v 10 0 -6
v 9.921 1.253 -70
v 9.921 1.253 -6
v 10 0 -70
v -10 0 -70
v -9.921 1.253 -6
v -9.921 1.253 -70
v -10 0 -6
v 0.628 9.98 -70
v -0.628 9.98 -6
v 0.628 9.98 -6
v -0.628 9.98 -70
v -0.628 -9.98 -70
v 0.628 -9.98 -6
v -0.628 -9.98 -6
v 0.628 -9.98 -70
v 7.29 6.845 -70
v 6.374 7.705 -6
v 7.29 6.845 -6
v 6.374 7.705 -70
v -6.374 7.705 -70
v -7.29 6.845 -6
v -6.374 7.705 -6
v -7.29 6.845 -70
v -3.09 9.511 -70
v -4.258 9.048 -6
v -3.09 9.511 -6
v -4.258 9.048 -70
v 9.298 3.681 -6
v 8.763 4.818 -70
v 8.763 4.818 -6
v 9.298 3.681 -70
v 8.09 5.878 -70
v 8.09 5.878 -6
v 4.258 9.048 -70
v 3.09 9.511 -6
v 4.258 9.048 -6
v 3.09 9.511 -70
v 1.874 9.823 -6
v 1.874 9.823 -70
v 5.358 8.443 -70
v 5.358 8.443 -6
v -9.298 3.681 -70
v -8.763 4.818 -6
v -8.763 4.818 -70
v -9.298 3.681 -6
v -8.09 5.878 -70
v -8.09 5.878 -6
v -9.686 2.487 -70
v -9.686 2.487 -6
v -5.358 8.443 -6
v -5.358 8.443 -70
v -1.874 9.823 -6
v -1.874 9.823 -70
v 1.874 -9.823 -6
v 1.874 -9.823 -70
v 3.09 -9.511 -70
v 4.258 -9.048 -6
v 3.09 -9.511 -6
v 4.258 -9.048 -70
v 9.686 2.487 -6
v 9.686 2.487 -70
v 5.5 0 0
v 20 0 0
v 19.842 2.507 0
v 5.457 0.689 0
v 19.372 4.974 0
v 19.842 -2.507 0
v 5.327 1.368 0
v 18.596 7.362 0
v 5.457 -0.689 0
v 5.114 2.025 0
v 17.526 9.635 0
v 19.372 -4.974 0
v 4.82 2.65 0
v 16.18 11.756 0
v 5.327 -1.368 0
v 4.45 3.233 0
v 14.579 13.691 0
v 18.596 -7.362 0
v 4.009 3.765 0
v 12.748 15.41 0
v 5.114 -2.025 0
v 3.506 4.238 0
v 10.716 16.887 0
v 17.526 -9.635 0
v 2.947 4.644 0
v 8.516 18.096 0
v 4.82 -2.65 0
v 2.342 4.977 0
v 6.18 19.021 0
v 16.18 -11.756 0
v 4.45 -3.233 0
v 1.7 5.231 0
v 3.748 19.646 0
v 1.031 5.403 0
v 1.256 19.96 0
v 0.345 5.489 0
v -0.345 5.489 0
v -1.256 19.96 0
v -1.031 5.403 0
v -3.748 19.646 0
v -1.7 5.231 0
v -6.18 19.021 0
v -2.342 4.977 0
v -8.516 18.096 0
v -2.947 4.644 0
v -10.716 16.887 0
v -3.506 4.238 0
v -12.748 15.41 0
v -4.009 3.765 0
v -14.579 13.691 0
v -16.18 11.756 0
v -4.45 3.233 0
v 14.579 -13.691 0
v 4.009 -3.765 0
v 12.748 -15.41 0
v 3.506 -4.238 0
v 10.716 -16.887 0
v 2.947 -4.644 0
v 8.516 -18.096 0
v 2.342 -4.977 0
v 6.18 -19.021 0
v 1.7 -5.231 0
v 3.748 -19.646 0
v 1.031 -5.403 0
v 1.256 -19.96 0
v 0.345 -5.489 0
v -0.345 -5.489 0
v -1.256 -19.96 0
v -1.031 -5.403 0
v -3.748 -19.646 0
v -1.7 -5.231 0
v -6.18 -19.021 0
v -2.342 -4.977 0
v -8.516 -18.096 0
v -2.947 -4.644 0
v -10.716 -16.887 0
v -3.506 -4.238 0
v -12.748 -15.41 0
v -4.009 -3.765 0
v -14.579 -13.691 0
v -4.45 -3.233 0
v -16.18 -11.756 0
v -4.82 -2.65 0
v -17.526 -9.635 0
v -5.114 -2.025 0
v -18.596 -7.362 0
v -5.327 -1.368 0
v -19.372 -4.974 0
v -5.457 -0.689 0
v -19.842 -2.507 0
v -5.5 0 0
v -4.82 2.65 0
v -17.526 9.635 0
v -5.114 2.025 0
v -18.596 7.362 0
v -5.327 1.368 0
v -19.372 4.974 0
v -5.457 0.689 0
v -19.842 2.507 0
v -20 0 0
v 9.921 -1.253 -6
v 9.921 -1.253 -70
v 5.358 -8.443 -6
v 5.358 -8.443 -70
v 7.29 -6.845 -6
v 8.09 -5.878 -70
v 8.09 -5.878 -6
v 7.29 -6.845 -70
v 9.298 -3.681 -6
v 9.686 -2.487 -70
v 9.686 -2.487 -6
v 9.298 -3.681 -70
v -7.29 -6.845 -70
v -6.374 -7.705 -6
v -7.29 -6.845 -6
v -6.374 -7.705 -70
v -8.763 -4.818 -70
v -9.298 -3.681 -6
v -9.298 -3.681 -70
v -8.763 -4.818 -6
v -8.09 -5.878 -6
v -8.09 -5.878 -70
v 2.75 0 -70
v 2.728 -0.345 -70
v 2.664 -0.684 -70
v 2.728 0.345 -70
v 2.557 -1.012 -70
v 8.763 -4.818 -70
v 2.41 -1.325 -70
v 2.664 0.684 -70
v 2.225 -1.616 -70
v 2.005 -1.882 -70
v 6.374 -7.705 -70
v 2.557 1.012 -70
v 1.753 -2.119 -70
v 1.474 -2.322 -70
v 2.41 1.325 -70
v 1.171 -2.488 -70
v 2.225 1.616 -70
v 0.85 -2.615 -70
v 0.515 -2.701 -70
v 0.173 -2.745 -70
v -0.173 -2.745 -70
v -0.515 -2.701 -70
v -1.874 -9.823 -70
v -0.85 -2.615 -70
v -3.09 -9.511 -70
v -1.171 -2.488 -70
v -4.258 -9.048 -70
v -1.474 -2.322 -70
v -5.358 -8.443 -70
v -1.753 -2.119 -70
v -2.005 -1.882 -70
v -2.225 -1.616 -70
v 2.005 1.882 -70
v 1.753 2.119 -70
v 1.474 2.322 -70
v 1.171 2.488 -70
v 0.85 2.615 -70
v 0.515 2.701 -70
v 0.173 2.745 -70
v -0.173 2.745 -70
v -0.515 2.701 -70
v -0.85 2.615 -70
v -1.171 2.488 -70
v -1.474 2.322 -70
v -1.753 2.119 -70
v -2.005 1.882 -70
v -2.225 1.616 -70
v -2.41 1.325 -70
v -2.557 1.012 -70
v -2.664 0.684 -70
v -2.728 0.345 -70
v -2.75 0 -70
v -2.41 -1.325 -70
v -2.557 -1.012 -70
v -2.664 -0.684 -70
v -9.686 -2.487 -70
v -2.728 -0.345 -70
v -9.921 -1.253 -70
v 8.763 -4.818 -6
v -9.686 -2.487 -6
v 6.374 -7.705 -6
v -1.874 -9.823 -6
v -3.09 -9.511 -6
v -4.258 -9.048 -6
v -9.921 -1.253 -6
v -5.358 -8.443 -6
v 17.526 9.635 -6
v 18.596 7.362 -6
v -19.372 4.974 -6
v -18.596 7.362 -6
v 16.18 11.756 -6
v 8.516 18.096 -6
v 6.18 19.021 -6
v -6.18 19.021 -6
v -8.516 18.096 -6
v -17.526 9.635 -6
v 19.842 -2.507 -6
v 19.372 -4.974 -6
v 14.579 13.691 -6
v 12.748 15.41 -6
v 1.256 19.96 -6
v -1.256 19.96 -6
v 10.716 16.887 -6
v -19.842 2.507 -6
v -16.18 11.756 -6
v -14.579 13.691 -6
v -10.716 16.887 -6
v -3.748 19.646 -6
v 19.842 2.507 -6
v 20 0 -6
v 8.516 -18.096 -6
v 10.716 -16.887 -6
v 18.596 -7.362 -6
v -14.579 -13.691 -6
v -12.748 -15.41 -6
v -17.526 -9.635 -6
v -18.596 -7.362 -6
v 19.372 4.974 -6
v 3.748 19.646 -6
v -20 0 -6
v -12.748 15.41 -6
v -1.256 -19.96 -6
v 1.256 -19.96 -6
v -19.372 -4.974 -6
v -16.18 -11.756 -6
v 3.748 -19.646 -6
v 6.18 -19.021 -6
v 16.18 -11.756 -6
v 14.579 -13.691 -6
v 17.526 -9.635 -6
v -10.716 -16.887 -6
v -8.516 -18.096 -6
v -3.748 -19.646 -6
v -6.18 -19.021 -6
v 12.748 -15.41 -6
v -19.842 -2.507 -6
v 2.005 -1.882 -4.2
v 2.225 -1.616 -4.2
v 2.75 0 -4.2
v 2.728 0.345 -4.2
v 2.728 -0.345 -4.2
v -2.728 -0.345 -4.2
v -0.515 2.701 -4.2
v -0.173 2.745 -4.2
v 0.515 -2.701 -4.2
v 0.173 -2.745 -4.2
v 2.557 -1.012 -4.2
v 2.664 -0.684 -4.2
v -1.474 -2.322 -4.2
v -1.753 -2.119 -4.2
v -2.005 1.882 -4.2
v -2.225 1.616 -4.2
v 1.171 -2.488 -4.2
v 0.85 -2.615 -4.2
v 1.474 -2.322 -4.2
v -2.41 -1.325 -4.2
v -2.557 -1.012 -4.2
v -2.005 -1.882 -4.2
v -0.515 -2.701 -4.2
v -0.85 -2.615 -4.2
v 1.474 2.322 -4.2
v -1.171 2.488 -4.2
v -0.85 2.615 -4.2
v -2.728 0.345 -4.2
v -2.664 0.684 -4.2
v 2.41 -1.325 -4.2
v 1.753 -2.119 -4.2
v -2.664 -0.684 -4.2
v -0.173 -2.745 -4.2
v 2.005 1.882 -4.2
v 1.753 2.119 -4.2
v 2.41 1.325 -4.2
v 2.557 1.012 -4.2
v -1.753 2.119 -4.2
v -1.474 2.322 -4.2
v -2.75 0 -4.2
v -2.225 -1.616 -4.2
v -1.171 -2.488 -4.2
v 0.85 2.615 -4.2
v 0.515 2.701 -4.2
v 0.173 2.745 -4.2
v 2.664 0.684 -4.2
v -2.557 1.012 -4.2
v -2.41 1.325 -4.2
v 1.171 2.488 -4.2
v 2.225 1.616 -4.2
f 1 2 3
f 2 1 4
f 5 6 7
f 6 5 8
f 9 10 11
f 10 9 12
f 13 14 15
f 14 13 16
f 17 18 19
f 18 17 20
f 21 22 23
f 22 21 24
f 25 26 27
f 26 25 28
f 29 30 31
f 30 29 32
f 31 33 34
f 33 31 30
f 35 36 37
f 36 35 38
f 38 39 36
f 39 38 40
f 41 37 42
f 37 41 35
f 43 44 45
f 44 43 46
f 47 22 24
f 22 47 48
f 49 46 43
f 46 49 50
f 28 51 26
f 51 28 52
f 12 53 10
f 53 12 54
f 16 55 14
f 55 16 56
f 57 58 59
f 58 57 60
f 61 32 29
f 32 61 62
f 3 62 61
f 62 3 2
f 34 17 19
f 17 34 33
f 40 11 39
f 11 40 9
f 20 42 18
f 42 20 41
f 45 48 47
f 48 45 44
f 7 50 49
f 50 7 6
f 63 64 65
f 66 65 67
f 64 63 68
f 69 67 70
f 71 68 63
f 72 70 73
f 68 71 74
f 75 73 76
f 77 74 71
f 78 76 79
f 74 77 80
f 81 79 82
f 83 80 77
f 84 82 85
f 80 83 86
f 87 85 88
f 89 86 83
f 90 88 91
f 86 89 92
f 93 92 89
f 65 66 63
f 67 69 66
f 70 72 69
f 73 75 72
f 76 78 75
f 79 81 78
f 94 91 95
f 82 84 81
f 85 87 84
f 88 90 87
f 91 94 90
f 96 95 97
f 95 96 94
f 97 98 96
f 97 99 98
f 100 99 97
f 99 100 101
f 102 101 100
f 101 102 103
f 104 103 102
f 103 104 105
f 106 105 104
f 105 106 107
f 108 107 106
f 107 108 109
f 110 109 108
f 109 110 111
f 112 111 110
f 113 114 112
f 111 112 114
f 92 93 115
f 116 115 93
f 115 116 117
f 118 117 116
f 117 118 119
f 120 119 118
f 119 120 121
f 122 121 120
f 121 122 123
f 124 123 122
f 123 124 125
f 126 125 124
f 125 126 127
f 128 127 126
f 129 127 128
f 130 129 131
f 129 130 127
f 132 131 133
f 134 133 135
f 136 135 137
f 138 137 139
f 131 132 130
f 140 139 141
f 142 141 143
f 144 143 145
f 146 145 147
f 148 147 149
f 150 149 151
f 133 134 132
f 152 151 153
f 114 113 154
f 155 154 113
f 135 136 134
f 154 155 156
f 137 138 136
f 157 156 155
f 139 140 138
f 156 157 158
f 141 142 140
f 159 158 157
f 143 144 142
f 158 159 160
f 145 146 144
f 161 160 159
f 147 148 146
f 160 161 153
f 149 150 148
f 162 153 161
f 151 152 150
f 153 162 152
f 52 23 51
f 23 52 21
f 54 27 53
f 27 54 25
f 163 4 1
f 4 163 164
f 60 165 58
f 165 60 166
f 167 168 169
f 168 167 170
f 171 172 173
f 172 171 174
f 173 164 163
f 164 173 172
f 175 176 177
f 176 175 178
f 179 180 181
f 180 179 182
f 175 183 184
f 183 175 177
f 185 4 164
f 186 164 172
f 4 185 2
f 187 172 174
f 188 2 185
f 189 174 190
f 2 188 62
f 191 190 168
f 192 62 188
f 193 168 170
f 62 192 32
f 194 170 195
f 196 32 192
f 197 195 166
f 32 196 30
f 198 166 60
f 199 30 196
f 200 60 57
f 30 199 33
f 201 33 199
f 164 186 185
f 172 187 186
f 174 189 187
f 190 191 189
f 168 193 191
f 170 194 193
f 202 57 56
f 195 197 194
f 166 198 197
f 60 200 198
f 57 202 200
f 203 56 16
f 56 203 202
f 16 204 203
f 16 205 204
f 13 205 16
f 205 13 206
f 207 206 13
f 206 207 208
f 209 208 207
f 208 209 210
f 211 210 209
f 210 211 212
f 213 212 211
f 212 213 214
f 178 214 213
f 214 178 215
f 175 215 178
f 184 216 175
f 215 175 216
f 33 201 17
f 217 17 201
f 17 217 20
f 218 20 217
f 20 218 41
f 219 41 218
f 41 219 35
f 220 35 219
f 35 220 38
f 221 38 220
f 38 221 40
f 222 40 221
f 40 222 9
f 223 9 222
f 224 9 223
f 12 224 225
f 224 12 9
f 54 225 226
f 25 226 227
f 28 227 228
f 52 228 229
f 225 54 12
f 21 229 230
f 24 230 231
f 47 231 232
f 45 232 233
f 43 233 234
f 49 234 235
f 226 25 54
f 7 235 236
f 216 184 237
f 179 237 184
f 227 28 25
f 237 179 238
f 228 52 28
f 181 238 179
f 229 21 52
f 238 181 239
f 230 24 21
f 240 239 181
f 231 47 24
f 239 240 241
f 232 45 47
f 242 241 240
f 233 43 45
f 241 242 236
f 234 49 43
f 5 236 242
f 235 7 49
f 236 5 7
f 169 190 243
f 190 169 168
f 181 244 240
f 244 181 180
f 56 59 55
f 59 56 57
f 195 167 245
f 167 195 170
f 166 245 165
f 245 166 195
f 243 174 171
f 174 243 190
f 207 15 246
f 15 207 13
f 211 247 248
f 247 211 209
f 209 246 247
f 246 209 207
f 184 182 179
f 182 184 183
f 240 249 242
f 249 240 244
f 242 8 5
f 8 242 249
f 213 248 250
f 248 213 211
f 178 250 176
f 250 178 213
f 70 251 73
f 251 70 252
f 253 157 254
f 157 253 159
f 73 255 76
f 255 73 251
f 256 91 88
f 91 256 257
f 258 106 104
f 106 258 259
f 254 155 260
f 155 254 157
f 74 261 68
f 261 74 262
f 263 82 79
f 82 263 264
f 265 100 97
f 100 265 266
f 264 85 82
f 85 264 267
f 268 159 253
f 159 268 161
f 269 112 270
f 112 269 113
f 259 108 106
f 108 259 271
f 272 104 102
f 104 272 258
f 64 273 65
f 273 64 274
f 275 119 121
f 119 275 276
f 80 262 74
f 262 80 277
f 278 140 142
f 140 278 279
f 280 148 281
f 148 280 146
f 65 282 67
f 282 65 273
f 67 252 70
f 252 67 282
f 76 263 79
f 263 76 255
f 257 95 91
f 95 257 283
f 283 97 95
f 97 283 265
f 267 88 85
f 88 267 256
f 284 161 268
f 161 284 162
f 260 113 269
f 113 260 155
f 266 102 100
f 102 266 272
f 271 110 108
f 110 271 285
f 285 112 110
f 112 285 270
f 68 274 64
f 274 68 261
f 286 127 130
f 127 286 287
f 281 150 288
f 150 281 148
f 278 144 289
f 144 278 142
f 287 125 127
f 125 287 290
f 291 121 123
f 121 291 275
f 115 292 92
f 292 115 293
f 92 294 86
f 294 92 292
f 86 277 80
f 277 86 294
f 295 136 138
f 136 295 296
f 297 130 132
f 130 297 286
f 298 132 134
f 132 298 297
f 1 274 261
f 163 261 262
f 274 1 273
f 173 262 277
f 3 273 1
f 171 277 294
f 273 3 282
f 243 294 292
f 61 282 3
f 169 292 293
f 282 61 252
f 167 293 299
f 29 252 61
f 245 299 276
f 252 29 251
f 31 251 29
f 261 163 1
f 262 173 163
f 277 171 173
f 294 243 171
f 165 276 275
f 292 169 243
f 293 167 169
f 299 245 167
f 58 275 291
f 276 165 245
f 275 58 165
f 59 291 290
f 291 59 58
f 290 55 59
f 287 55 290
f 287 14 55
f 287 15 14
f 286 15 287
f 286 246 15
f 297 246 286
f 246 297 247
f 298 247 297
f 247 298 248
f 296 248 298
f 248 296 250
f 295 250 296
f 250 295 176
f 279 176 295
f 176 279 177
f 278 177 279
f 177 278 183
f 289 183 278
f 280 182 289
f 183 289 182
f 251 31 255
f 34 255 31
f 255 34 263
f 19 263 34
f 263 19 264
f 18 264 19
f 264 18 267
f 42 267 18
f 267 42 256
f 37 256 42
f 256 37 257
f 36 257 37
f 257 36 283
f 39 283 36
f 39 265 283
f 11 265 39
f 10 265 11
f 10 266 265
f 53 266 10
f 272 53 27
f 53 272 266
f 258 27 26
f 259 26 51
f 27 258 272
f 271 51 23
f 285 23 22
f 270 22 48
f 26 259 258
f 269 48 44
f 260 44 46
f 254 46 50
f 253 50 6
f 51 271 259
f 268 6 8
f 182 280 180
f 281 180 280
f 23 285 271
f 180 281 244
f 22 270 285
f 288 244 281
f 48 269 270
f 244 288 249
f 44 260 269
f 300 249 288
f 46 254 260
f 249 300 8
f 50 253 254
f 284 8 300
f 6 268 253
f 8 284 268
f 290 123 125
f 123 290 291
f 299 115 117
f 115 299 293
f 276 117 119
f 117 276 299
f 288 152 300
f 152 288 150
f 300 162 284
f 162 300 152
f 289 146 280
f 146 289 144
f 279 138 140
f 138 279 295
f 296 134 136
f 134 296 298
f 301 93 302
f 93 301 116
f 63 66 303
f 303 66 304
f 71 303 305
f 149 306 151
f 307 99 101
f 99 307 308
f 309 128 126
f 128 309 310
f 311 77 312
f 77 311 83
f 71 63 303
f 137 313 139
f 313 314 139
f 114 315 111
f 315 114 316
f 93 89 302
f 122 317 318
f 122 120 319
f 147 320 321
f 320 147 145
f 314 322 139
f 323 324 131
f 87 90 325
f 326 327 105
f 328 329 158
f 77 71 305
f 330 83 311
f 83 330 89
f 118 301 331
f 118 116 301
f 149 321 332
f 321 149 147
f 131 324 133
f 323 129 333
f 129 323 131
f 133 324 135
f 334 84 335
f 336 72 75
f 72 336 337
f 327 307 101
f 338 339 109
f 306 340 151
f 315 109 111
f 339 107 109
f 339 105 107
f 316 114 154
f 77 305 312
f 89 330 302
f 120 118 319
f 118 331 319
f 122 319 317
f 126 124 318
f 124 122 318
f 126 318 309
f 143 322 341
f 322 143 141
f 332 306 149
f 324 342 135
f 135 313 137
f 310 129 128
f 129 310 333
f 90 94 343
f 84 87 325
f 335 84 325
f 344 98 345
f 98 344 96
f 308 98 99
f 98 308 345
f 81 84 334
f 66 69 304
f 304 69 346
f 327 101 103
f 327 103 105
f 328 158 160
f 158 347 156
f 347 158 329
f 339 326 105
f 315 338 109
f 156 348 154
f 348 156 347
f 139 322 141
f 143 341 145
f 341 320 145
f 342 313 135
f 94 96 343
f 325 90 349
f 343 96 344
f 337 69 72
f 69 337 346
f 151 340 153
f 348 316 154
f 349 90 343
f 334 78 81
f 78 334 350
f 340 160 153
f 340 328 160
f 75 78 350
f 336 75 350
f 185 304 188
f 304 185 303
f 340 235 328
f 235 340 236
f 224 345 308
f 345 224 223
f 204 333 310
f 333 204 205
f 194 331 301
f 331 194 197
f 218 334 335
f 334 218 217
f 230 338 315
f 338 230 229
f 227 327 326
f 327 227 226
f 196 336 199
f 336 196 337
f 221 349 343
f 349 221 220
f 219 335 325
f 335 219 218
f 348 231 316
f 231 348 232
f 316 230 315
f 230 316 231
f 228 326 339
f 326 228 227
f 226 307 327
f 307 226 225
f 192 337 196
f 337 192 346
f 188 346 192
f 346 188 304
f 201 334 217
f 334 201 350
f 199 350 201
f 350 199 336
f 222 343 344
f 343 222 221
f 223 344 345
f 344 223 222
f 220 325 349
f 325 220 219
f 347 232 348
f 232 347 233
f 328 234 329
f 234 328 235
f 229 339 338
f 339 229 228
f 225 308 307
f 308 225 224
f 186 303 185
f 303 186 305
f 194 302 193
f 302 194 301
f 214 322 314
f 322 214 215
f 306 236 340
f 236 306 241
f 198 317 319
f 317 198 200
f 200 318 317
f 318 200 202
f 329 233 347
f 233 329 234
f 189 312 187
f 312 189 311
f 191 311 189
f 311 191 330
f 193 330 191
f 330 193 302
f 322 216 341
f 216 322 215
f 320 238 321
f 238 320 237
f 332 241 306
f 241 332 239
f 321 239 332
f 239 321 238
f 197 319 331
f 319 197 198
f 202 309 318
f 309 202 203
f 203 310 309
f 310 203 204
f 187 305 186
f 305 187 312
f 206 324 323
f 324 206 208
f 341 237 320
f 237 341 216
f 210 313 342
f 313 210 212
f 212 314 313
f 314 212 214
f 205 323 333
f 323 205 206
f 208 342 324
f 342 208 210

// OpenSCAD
$fn = 50;


difference() {
	union() {
		translate(v = [0, 0, -70.0000000000]) {
			cylinder(h = 70, r = 10.0000000000);
		}
		translate(v = [0, 0, -6.0000000000]) {
			cylinder(h = 6, r = 20.0000000000);
		}
	}
	union() {
		translate(v = [0, 0, 0]) {
			rotate(a = [0, 0, 0]) {
				difference() {
					union() {
						#translate(v = [0, 0, -70.0000000000]) {
							cylinder(h = 70, r = 2.2500000000);
						}
						#translate(v = [0, 0, -4.2000000000]) {
							cylinder(h = 4.2000000000, r1 = 2.7500000000, r2 = 5.5000000000);
						}
						#translate(v = [0, 0, -70.0000000000]) {
							cylinder(h = 70, r = 2.7500000000);
						}
						#translate(v = [0, 0, -70.0000000000]) {
							cylinder(h = 70, r = 2.2500000000);
						}
					}
					union();
				}
			}
		}
	}
}
